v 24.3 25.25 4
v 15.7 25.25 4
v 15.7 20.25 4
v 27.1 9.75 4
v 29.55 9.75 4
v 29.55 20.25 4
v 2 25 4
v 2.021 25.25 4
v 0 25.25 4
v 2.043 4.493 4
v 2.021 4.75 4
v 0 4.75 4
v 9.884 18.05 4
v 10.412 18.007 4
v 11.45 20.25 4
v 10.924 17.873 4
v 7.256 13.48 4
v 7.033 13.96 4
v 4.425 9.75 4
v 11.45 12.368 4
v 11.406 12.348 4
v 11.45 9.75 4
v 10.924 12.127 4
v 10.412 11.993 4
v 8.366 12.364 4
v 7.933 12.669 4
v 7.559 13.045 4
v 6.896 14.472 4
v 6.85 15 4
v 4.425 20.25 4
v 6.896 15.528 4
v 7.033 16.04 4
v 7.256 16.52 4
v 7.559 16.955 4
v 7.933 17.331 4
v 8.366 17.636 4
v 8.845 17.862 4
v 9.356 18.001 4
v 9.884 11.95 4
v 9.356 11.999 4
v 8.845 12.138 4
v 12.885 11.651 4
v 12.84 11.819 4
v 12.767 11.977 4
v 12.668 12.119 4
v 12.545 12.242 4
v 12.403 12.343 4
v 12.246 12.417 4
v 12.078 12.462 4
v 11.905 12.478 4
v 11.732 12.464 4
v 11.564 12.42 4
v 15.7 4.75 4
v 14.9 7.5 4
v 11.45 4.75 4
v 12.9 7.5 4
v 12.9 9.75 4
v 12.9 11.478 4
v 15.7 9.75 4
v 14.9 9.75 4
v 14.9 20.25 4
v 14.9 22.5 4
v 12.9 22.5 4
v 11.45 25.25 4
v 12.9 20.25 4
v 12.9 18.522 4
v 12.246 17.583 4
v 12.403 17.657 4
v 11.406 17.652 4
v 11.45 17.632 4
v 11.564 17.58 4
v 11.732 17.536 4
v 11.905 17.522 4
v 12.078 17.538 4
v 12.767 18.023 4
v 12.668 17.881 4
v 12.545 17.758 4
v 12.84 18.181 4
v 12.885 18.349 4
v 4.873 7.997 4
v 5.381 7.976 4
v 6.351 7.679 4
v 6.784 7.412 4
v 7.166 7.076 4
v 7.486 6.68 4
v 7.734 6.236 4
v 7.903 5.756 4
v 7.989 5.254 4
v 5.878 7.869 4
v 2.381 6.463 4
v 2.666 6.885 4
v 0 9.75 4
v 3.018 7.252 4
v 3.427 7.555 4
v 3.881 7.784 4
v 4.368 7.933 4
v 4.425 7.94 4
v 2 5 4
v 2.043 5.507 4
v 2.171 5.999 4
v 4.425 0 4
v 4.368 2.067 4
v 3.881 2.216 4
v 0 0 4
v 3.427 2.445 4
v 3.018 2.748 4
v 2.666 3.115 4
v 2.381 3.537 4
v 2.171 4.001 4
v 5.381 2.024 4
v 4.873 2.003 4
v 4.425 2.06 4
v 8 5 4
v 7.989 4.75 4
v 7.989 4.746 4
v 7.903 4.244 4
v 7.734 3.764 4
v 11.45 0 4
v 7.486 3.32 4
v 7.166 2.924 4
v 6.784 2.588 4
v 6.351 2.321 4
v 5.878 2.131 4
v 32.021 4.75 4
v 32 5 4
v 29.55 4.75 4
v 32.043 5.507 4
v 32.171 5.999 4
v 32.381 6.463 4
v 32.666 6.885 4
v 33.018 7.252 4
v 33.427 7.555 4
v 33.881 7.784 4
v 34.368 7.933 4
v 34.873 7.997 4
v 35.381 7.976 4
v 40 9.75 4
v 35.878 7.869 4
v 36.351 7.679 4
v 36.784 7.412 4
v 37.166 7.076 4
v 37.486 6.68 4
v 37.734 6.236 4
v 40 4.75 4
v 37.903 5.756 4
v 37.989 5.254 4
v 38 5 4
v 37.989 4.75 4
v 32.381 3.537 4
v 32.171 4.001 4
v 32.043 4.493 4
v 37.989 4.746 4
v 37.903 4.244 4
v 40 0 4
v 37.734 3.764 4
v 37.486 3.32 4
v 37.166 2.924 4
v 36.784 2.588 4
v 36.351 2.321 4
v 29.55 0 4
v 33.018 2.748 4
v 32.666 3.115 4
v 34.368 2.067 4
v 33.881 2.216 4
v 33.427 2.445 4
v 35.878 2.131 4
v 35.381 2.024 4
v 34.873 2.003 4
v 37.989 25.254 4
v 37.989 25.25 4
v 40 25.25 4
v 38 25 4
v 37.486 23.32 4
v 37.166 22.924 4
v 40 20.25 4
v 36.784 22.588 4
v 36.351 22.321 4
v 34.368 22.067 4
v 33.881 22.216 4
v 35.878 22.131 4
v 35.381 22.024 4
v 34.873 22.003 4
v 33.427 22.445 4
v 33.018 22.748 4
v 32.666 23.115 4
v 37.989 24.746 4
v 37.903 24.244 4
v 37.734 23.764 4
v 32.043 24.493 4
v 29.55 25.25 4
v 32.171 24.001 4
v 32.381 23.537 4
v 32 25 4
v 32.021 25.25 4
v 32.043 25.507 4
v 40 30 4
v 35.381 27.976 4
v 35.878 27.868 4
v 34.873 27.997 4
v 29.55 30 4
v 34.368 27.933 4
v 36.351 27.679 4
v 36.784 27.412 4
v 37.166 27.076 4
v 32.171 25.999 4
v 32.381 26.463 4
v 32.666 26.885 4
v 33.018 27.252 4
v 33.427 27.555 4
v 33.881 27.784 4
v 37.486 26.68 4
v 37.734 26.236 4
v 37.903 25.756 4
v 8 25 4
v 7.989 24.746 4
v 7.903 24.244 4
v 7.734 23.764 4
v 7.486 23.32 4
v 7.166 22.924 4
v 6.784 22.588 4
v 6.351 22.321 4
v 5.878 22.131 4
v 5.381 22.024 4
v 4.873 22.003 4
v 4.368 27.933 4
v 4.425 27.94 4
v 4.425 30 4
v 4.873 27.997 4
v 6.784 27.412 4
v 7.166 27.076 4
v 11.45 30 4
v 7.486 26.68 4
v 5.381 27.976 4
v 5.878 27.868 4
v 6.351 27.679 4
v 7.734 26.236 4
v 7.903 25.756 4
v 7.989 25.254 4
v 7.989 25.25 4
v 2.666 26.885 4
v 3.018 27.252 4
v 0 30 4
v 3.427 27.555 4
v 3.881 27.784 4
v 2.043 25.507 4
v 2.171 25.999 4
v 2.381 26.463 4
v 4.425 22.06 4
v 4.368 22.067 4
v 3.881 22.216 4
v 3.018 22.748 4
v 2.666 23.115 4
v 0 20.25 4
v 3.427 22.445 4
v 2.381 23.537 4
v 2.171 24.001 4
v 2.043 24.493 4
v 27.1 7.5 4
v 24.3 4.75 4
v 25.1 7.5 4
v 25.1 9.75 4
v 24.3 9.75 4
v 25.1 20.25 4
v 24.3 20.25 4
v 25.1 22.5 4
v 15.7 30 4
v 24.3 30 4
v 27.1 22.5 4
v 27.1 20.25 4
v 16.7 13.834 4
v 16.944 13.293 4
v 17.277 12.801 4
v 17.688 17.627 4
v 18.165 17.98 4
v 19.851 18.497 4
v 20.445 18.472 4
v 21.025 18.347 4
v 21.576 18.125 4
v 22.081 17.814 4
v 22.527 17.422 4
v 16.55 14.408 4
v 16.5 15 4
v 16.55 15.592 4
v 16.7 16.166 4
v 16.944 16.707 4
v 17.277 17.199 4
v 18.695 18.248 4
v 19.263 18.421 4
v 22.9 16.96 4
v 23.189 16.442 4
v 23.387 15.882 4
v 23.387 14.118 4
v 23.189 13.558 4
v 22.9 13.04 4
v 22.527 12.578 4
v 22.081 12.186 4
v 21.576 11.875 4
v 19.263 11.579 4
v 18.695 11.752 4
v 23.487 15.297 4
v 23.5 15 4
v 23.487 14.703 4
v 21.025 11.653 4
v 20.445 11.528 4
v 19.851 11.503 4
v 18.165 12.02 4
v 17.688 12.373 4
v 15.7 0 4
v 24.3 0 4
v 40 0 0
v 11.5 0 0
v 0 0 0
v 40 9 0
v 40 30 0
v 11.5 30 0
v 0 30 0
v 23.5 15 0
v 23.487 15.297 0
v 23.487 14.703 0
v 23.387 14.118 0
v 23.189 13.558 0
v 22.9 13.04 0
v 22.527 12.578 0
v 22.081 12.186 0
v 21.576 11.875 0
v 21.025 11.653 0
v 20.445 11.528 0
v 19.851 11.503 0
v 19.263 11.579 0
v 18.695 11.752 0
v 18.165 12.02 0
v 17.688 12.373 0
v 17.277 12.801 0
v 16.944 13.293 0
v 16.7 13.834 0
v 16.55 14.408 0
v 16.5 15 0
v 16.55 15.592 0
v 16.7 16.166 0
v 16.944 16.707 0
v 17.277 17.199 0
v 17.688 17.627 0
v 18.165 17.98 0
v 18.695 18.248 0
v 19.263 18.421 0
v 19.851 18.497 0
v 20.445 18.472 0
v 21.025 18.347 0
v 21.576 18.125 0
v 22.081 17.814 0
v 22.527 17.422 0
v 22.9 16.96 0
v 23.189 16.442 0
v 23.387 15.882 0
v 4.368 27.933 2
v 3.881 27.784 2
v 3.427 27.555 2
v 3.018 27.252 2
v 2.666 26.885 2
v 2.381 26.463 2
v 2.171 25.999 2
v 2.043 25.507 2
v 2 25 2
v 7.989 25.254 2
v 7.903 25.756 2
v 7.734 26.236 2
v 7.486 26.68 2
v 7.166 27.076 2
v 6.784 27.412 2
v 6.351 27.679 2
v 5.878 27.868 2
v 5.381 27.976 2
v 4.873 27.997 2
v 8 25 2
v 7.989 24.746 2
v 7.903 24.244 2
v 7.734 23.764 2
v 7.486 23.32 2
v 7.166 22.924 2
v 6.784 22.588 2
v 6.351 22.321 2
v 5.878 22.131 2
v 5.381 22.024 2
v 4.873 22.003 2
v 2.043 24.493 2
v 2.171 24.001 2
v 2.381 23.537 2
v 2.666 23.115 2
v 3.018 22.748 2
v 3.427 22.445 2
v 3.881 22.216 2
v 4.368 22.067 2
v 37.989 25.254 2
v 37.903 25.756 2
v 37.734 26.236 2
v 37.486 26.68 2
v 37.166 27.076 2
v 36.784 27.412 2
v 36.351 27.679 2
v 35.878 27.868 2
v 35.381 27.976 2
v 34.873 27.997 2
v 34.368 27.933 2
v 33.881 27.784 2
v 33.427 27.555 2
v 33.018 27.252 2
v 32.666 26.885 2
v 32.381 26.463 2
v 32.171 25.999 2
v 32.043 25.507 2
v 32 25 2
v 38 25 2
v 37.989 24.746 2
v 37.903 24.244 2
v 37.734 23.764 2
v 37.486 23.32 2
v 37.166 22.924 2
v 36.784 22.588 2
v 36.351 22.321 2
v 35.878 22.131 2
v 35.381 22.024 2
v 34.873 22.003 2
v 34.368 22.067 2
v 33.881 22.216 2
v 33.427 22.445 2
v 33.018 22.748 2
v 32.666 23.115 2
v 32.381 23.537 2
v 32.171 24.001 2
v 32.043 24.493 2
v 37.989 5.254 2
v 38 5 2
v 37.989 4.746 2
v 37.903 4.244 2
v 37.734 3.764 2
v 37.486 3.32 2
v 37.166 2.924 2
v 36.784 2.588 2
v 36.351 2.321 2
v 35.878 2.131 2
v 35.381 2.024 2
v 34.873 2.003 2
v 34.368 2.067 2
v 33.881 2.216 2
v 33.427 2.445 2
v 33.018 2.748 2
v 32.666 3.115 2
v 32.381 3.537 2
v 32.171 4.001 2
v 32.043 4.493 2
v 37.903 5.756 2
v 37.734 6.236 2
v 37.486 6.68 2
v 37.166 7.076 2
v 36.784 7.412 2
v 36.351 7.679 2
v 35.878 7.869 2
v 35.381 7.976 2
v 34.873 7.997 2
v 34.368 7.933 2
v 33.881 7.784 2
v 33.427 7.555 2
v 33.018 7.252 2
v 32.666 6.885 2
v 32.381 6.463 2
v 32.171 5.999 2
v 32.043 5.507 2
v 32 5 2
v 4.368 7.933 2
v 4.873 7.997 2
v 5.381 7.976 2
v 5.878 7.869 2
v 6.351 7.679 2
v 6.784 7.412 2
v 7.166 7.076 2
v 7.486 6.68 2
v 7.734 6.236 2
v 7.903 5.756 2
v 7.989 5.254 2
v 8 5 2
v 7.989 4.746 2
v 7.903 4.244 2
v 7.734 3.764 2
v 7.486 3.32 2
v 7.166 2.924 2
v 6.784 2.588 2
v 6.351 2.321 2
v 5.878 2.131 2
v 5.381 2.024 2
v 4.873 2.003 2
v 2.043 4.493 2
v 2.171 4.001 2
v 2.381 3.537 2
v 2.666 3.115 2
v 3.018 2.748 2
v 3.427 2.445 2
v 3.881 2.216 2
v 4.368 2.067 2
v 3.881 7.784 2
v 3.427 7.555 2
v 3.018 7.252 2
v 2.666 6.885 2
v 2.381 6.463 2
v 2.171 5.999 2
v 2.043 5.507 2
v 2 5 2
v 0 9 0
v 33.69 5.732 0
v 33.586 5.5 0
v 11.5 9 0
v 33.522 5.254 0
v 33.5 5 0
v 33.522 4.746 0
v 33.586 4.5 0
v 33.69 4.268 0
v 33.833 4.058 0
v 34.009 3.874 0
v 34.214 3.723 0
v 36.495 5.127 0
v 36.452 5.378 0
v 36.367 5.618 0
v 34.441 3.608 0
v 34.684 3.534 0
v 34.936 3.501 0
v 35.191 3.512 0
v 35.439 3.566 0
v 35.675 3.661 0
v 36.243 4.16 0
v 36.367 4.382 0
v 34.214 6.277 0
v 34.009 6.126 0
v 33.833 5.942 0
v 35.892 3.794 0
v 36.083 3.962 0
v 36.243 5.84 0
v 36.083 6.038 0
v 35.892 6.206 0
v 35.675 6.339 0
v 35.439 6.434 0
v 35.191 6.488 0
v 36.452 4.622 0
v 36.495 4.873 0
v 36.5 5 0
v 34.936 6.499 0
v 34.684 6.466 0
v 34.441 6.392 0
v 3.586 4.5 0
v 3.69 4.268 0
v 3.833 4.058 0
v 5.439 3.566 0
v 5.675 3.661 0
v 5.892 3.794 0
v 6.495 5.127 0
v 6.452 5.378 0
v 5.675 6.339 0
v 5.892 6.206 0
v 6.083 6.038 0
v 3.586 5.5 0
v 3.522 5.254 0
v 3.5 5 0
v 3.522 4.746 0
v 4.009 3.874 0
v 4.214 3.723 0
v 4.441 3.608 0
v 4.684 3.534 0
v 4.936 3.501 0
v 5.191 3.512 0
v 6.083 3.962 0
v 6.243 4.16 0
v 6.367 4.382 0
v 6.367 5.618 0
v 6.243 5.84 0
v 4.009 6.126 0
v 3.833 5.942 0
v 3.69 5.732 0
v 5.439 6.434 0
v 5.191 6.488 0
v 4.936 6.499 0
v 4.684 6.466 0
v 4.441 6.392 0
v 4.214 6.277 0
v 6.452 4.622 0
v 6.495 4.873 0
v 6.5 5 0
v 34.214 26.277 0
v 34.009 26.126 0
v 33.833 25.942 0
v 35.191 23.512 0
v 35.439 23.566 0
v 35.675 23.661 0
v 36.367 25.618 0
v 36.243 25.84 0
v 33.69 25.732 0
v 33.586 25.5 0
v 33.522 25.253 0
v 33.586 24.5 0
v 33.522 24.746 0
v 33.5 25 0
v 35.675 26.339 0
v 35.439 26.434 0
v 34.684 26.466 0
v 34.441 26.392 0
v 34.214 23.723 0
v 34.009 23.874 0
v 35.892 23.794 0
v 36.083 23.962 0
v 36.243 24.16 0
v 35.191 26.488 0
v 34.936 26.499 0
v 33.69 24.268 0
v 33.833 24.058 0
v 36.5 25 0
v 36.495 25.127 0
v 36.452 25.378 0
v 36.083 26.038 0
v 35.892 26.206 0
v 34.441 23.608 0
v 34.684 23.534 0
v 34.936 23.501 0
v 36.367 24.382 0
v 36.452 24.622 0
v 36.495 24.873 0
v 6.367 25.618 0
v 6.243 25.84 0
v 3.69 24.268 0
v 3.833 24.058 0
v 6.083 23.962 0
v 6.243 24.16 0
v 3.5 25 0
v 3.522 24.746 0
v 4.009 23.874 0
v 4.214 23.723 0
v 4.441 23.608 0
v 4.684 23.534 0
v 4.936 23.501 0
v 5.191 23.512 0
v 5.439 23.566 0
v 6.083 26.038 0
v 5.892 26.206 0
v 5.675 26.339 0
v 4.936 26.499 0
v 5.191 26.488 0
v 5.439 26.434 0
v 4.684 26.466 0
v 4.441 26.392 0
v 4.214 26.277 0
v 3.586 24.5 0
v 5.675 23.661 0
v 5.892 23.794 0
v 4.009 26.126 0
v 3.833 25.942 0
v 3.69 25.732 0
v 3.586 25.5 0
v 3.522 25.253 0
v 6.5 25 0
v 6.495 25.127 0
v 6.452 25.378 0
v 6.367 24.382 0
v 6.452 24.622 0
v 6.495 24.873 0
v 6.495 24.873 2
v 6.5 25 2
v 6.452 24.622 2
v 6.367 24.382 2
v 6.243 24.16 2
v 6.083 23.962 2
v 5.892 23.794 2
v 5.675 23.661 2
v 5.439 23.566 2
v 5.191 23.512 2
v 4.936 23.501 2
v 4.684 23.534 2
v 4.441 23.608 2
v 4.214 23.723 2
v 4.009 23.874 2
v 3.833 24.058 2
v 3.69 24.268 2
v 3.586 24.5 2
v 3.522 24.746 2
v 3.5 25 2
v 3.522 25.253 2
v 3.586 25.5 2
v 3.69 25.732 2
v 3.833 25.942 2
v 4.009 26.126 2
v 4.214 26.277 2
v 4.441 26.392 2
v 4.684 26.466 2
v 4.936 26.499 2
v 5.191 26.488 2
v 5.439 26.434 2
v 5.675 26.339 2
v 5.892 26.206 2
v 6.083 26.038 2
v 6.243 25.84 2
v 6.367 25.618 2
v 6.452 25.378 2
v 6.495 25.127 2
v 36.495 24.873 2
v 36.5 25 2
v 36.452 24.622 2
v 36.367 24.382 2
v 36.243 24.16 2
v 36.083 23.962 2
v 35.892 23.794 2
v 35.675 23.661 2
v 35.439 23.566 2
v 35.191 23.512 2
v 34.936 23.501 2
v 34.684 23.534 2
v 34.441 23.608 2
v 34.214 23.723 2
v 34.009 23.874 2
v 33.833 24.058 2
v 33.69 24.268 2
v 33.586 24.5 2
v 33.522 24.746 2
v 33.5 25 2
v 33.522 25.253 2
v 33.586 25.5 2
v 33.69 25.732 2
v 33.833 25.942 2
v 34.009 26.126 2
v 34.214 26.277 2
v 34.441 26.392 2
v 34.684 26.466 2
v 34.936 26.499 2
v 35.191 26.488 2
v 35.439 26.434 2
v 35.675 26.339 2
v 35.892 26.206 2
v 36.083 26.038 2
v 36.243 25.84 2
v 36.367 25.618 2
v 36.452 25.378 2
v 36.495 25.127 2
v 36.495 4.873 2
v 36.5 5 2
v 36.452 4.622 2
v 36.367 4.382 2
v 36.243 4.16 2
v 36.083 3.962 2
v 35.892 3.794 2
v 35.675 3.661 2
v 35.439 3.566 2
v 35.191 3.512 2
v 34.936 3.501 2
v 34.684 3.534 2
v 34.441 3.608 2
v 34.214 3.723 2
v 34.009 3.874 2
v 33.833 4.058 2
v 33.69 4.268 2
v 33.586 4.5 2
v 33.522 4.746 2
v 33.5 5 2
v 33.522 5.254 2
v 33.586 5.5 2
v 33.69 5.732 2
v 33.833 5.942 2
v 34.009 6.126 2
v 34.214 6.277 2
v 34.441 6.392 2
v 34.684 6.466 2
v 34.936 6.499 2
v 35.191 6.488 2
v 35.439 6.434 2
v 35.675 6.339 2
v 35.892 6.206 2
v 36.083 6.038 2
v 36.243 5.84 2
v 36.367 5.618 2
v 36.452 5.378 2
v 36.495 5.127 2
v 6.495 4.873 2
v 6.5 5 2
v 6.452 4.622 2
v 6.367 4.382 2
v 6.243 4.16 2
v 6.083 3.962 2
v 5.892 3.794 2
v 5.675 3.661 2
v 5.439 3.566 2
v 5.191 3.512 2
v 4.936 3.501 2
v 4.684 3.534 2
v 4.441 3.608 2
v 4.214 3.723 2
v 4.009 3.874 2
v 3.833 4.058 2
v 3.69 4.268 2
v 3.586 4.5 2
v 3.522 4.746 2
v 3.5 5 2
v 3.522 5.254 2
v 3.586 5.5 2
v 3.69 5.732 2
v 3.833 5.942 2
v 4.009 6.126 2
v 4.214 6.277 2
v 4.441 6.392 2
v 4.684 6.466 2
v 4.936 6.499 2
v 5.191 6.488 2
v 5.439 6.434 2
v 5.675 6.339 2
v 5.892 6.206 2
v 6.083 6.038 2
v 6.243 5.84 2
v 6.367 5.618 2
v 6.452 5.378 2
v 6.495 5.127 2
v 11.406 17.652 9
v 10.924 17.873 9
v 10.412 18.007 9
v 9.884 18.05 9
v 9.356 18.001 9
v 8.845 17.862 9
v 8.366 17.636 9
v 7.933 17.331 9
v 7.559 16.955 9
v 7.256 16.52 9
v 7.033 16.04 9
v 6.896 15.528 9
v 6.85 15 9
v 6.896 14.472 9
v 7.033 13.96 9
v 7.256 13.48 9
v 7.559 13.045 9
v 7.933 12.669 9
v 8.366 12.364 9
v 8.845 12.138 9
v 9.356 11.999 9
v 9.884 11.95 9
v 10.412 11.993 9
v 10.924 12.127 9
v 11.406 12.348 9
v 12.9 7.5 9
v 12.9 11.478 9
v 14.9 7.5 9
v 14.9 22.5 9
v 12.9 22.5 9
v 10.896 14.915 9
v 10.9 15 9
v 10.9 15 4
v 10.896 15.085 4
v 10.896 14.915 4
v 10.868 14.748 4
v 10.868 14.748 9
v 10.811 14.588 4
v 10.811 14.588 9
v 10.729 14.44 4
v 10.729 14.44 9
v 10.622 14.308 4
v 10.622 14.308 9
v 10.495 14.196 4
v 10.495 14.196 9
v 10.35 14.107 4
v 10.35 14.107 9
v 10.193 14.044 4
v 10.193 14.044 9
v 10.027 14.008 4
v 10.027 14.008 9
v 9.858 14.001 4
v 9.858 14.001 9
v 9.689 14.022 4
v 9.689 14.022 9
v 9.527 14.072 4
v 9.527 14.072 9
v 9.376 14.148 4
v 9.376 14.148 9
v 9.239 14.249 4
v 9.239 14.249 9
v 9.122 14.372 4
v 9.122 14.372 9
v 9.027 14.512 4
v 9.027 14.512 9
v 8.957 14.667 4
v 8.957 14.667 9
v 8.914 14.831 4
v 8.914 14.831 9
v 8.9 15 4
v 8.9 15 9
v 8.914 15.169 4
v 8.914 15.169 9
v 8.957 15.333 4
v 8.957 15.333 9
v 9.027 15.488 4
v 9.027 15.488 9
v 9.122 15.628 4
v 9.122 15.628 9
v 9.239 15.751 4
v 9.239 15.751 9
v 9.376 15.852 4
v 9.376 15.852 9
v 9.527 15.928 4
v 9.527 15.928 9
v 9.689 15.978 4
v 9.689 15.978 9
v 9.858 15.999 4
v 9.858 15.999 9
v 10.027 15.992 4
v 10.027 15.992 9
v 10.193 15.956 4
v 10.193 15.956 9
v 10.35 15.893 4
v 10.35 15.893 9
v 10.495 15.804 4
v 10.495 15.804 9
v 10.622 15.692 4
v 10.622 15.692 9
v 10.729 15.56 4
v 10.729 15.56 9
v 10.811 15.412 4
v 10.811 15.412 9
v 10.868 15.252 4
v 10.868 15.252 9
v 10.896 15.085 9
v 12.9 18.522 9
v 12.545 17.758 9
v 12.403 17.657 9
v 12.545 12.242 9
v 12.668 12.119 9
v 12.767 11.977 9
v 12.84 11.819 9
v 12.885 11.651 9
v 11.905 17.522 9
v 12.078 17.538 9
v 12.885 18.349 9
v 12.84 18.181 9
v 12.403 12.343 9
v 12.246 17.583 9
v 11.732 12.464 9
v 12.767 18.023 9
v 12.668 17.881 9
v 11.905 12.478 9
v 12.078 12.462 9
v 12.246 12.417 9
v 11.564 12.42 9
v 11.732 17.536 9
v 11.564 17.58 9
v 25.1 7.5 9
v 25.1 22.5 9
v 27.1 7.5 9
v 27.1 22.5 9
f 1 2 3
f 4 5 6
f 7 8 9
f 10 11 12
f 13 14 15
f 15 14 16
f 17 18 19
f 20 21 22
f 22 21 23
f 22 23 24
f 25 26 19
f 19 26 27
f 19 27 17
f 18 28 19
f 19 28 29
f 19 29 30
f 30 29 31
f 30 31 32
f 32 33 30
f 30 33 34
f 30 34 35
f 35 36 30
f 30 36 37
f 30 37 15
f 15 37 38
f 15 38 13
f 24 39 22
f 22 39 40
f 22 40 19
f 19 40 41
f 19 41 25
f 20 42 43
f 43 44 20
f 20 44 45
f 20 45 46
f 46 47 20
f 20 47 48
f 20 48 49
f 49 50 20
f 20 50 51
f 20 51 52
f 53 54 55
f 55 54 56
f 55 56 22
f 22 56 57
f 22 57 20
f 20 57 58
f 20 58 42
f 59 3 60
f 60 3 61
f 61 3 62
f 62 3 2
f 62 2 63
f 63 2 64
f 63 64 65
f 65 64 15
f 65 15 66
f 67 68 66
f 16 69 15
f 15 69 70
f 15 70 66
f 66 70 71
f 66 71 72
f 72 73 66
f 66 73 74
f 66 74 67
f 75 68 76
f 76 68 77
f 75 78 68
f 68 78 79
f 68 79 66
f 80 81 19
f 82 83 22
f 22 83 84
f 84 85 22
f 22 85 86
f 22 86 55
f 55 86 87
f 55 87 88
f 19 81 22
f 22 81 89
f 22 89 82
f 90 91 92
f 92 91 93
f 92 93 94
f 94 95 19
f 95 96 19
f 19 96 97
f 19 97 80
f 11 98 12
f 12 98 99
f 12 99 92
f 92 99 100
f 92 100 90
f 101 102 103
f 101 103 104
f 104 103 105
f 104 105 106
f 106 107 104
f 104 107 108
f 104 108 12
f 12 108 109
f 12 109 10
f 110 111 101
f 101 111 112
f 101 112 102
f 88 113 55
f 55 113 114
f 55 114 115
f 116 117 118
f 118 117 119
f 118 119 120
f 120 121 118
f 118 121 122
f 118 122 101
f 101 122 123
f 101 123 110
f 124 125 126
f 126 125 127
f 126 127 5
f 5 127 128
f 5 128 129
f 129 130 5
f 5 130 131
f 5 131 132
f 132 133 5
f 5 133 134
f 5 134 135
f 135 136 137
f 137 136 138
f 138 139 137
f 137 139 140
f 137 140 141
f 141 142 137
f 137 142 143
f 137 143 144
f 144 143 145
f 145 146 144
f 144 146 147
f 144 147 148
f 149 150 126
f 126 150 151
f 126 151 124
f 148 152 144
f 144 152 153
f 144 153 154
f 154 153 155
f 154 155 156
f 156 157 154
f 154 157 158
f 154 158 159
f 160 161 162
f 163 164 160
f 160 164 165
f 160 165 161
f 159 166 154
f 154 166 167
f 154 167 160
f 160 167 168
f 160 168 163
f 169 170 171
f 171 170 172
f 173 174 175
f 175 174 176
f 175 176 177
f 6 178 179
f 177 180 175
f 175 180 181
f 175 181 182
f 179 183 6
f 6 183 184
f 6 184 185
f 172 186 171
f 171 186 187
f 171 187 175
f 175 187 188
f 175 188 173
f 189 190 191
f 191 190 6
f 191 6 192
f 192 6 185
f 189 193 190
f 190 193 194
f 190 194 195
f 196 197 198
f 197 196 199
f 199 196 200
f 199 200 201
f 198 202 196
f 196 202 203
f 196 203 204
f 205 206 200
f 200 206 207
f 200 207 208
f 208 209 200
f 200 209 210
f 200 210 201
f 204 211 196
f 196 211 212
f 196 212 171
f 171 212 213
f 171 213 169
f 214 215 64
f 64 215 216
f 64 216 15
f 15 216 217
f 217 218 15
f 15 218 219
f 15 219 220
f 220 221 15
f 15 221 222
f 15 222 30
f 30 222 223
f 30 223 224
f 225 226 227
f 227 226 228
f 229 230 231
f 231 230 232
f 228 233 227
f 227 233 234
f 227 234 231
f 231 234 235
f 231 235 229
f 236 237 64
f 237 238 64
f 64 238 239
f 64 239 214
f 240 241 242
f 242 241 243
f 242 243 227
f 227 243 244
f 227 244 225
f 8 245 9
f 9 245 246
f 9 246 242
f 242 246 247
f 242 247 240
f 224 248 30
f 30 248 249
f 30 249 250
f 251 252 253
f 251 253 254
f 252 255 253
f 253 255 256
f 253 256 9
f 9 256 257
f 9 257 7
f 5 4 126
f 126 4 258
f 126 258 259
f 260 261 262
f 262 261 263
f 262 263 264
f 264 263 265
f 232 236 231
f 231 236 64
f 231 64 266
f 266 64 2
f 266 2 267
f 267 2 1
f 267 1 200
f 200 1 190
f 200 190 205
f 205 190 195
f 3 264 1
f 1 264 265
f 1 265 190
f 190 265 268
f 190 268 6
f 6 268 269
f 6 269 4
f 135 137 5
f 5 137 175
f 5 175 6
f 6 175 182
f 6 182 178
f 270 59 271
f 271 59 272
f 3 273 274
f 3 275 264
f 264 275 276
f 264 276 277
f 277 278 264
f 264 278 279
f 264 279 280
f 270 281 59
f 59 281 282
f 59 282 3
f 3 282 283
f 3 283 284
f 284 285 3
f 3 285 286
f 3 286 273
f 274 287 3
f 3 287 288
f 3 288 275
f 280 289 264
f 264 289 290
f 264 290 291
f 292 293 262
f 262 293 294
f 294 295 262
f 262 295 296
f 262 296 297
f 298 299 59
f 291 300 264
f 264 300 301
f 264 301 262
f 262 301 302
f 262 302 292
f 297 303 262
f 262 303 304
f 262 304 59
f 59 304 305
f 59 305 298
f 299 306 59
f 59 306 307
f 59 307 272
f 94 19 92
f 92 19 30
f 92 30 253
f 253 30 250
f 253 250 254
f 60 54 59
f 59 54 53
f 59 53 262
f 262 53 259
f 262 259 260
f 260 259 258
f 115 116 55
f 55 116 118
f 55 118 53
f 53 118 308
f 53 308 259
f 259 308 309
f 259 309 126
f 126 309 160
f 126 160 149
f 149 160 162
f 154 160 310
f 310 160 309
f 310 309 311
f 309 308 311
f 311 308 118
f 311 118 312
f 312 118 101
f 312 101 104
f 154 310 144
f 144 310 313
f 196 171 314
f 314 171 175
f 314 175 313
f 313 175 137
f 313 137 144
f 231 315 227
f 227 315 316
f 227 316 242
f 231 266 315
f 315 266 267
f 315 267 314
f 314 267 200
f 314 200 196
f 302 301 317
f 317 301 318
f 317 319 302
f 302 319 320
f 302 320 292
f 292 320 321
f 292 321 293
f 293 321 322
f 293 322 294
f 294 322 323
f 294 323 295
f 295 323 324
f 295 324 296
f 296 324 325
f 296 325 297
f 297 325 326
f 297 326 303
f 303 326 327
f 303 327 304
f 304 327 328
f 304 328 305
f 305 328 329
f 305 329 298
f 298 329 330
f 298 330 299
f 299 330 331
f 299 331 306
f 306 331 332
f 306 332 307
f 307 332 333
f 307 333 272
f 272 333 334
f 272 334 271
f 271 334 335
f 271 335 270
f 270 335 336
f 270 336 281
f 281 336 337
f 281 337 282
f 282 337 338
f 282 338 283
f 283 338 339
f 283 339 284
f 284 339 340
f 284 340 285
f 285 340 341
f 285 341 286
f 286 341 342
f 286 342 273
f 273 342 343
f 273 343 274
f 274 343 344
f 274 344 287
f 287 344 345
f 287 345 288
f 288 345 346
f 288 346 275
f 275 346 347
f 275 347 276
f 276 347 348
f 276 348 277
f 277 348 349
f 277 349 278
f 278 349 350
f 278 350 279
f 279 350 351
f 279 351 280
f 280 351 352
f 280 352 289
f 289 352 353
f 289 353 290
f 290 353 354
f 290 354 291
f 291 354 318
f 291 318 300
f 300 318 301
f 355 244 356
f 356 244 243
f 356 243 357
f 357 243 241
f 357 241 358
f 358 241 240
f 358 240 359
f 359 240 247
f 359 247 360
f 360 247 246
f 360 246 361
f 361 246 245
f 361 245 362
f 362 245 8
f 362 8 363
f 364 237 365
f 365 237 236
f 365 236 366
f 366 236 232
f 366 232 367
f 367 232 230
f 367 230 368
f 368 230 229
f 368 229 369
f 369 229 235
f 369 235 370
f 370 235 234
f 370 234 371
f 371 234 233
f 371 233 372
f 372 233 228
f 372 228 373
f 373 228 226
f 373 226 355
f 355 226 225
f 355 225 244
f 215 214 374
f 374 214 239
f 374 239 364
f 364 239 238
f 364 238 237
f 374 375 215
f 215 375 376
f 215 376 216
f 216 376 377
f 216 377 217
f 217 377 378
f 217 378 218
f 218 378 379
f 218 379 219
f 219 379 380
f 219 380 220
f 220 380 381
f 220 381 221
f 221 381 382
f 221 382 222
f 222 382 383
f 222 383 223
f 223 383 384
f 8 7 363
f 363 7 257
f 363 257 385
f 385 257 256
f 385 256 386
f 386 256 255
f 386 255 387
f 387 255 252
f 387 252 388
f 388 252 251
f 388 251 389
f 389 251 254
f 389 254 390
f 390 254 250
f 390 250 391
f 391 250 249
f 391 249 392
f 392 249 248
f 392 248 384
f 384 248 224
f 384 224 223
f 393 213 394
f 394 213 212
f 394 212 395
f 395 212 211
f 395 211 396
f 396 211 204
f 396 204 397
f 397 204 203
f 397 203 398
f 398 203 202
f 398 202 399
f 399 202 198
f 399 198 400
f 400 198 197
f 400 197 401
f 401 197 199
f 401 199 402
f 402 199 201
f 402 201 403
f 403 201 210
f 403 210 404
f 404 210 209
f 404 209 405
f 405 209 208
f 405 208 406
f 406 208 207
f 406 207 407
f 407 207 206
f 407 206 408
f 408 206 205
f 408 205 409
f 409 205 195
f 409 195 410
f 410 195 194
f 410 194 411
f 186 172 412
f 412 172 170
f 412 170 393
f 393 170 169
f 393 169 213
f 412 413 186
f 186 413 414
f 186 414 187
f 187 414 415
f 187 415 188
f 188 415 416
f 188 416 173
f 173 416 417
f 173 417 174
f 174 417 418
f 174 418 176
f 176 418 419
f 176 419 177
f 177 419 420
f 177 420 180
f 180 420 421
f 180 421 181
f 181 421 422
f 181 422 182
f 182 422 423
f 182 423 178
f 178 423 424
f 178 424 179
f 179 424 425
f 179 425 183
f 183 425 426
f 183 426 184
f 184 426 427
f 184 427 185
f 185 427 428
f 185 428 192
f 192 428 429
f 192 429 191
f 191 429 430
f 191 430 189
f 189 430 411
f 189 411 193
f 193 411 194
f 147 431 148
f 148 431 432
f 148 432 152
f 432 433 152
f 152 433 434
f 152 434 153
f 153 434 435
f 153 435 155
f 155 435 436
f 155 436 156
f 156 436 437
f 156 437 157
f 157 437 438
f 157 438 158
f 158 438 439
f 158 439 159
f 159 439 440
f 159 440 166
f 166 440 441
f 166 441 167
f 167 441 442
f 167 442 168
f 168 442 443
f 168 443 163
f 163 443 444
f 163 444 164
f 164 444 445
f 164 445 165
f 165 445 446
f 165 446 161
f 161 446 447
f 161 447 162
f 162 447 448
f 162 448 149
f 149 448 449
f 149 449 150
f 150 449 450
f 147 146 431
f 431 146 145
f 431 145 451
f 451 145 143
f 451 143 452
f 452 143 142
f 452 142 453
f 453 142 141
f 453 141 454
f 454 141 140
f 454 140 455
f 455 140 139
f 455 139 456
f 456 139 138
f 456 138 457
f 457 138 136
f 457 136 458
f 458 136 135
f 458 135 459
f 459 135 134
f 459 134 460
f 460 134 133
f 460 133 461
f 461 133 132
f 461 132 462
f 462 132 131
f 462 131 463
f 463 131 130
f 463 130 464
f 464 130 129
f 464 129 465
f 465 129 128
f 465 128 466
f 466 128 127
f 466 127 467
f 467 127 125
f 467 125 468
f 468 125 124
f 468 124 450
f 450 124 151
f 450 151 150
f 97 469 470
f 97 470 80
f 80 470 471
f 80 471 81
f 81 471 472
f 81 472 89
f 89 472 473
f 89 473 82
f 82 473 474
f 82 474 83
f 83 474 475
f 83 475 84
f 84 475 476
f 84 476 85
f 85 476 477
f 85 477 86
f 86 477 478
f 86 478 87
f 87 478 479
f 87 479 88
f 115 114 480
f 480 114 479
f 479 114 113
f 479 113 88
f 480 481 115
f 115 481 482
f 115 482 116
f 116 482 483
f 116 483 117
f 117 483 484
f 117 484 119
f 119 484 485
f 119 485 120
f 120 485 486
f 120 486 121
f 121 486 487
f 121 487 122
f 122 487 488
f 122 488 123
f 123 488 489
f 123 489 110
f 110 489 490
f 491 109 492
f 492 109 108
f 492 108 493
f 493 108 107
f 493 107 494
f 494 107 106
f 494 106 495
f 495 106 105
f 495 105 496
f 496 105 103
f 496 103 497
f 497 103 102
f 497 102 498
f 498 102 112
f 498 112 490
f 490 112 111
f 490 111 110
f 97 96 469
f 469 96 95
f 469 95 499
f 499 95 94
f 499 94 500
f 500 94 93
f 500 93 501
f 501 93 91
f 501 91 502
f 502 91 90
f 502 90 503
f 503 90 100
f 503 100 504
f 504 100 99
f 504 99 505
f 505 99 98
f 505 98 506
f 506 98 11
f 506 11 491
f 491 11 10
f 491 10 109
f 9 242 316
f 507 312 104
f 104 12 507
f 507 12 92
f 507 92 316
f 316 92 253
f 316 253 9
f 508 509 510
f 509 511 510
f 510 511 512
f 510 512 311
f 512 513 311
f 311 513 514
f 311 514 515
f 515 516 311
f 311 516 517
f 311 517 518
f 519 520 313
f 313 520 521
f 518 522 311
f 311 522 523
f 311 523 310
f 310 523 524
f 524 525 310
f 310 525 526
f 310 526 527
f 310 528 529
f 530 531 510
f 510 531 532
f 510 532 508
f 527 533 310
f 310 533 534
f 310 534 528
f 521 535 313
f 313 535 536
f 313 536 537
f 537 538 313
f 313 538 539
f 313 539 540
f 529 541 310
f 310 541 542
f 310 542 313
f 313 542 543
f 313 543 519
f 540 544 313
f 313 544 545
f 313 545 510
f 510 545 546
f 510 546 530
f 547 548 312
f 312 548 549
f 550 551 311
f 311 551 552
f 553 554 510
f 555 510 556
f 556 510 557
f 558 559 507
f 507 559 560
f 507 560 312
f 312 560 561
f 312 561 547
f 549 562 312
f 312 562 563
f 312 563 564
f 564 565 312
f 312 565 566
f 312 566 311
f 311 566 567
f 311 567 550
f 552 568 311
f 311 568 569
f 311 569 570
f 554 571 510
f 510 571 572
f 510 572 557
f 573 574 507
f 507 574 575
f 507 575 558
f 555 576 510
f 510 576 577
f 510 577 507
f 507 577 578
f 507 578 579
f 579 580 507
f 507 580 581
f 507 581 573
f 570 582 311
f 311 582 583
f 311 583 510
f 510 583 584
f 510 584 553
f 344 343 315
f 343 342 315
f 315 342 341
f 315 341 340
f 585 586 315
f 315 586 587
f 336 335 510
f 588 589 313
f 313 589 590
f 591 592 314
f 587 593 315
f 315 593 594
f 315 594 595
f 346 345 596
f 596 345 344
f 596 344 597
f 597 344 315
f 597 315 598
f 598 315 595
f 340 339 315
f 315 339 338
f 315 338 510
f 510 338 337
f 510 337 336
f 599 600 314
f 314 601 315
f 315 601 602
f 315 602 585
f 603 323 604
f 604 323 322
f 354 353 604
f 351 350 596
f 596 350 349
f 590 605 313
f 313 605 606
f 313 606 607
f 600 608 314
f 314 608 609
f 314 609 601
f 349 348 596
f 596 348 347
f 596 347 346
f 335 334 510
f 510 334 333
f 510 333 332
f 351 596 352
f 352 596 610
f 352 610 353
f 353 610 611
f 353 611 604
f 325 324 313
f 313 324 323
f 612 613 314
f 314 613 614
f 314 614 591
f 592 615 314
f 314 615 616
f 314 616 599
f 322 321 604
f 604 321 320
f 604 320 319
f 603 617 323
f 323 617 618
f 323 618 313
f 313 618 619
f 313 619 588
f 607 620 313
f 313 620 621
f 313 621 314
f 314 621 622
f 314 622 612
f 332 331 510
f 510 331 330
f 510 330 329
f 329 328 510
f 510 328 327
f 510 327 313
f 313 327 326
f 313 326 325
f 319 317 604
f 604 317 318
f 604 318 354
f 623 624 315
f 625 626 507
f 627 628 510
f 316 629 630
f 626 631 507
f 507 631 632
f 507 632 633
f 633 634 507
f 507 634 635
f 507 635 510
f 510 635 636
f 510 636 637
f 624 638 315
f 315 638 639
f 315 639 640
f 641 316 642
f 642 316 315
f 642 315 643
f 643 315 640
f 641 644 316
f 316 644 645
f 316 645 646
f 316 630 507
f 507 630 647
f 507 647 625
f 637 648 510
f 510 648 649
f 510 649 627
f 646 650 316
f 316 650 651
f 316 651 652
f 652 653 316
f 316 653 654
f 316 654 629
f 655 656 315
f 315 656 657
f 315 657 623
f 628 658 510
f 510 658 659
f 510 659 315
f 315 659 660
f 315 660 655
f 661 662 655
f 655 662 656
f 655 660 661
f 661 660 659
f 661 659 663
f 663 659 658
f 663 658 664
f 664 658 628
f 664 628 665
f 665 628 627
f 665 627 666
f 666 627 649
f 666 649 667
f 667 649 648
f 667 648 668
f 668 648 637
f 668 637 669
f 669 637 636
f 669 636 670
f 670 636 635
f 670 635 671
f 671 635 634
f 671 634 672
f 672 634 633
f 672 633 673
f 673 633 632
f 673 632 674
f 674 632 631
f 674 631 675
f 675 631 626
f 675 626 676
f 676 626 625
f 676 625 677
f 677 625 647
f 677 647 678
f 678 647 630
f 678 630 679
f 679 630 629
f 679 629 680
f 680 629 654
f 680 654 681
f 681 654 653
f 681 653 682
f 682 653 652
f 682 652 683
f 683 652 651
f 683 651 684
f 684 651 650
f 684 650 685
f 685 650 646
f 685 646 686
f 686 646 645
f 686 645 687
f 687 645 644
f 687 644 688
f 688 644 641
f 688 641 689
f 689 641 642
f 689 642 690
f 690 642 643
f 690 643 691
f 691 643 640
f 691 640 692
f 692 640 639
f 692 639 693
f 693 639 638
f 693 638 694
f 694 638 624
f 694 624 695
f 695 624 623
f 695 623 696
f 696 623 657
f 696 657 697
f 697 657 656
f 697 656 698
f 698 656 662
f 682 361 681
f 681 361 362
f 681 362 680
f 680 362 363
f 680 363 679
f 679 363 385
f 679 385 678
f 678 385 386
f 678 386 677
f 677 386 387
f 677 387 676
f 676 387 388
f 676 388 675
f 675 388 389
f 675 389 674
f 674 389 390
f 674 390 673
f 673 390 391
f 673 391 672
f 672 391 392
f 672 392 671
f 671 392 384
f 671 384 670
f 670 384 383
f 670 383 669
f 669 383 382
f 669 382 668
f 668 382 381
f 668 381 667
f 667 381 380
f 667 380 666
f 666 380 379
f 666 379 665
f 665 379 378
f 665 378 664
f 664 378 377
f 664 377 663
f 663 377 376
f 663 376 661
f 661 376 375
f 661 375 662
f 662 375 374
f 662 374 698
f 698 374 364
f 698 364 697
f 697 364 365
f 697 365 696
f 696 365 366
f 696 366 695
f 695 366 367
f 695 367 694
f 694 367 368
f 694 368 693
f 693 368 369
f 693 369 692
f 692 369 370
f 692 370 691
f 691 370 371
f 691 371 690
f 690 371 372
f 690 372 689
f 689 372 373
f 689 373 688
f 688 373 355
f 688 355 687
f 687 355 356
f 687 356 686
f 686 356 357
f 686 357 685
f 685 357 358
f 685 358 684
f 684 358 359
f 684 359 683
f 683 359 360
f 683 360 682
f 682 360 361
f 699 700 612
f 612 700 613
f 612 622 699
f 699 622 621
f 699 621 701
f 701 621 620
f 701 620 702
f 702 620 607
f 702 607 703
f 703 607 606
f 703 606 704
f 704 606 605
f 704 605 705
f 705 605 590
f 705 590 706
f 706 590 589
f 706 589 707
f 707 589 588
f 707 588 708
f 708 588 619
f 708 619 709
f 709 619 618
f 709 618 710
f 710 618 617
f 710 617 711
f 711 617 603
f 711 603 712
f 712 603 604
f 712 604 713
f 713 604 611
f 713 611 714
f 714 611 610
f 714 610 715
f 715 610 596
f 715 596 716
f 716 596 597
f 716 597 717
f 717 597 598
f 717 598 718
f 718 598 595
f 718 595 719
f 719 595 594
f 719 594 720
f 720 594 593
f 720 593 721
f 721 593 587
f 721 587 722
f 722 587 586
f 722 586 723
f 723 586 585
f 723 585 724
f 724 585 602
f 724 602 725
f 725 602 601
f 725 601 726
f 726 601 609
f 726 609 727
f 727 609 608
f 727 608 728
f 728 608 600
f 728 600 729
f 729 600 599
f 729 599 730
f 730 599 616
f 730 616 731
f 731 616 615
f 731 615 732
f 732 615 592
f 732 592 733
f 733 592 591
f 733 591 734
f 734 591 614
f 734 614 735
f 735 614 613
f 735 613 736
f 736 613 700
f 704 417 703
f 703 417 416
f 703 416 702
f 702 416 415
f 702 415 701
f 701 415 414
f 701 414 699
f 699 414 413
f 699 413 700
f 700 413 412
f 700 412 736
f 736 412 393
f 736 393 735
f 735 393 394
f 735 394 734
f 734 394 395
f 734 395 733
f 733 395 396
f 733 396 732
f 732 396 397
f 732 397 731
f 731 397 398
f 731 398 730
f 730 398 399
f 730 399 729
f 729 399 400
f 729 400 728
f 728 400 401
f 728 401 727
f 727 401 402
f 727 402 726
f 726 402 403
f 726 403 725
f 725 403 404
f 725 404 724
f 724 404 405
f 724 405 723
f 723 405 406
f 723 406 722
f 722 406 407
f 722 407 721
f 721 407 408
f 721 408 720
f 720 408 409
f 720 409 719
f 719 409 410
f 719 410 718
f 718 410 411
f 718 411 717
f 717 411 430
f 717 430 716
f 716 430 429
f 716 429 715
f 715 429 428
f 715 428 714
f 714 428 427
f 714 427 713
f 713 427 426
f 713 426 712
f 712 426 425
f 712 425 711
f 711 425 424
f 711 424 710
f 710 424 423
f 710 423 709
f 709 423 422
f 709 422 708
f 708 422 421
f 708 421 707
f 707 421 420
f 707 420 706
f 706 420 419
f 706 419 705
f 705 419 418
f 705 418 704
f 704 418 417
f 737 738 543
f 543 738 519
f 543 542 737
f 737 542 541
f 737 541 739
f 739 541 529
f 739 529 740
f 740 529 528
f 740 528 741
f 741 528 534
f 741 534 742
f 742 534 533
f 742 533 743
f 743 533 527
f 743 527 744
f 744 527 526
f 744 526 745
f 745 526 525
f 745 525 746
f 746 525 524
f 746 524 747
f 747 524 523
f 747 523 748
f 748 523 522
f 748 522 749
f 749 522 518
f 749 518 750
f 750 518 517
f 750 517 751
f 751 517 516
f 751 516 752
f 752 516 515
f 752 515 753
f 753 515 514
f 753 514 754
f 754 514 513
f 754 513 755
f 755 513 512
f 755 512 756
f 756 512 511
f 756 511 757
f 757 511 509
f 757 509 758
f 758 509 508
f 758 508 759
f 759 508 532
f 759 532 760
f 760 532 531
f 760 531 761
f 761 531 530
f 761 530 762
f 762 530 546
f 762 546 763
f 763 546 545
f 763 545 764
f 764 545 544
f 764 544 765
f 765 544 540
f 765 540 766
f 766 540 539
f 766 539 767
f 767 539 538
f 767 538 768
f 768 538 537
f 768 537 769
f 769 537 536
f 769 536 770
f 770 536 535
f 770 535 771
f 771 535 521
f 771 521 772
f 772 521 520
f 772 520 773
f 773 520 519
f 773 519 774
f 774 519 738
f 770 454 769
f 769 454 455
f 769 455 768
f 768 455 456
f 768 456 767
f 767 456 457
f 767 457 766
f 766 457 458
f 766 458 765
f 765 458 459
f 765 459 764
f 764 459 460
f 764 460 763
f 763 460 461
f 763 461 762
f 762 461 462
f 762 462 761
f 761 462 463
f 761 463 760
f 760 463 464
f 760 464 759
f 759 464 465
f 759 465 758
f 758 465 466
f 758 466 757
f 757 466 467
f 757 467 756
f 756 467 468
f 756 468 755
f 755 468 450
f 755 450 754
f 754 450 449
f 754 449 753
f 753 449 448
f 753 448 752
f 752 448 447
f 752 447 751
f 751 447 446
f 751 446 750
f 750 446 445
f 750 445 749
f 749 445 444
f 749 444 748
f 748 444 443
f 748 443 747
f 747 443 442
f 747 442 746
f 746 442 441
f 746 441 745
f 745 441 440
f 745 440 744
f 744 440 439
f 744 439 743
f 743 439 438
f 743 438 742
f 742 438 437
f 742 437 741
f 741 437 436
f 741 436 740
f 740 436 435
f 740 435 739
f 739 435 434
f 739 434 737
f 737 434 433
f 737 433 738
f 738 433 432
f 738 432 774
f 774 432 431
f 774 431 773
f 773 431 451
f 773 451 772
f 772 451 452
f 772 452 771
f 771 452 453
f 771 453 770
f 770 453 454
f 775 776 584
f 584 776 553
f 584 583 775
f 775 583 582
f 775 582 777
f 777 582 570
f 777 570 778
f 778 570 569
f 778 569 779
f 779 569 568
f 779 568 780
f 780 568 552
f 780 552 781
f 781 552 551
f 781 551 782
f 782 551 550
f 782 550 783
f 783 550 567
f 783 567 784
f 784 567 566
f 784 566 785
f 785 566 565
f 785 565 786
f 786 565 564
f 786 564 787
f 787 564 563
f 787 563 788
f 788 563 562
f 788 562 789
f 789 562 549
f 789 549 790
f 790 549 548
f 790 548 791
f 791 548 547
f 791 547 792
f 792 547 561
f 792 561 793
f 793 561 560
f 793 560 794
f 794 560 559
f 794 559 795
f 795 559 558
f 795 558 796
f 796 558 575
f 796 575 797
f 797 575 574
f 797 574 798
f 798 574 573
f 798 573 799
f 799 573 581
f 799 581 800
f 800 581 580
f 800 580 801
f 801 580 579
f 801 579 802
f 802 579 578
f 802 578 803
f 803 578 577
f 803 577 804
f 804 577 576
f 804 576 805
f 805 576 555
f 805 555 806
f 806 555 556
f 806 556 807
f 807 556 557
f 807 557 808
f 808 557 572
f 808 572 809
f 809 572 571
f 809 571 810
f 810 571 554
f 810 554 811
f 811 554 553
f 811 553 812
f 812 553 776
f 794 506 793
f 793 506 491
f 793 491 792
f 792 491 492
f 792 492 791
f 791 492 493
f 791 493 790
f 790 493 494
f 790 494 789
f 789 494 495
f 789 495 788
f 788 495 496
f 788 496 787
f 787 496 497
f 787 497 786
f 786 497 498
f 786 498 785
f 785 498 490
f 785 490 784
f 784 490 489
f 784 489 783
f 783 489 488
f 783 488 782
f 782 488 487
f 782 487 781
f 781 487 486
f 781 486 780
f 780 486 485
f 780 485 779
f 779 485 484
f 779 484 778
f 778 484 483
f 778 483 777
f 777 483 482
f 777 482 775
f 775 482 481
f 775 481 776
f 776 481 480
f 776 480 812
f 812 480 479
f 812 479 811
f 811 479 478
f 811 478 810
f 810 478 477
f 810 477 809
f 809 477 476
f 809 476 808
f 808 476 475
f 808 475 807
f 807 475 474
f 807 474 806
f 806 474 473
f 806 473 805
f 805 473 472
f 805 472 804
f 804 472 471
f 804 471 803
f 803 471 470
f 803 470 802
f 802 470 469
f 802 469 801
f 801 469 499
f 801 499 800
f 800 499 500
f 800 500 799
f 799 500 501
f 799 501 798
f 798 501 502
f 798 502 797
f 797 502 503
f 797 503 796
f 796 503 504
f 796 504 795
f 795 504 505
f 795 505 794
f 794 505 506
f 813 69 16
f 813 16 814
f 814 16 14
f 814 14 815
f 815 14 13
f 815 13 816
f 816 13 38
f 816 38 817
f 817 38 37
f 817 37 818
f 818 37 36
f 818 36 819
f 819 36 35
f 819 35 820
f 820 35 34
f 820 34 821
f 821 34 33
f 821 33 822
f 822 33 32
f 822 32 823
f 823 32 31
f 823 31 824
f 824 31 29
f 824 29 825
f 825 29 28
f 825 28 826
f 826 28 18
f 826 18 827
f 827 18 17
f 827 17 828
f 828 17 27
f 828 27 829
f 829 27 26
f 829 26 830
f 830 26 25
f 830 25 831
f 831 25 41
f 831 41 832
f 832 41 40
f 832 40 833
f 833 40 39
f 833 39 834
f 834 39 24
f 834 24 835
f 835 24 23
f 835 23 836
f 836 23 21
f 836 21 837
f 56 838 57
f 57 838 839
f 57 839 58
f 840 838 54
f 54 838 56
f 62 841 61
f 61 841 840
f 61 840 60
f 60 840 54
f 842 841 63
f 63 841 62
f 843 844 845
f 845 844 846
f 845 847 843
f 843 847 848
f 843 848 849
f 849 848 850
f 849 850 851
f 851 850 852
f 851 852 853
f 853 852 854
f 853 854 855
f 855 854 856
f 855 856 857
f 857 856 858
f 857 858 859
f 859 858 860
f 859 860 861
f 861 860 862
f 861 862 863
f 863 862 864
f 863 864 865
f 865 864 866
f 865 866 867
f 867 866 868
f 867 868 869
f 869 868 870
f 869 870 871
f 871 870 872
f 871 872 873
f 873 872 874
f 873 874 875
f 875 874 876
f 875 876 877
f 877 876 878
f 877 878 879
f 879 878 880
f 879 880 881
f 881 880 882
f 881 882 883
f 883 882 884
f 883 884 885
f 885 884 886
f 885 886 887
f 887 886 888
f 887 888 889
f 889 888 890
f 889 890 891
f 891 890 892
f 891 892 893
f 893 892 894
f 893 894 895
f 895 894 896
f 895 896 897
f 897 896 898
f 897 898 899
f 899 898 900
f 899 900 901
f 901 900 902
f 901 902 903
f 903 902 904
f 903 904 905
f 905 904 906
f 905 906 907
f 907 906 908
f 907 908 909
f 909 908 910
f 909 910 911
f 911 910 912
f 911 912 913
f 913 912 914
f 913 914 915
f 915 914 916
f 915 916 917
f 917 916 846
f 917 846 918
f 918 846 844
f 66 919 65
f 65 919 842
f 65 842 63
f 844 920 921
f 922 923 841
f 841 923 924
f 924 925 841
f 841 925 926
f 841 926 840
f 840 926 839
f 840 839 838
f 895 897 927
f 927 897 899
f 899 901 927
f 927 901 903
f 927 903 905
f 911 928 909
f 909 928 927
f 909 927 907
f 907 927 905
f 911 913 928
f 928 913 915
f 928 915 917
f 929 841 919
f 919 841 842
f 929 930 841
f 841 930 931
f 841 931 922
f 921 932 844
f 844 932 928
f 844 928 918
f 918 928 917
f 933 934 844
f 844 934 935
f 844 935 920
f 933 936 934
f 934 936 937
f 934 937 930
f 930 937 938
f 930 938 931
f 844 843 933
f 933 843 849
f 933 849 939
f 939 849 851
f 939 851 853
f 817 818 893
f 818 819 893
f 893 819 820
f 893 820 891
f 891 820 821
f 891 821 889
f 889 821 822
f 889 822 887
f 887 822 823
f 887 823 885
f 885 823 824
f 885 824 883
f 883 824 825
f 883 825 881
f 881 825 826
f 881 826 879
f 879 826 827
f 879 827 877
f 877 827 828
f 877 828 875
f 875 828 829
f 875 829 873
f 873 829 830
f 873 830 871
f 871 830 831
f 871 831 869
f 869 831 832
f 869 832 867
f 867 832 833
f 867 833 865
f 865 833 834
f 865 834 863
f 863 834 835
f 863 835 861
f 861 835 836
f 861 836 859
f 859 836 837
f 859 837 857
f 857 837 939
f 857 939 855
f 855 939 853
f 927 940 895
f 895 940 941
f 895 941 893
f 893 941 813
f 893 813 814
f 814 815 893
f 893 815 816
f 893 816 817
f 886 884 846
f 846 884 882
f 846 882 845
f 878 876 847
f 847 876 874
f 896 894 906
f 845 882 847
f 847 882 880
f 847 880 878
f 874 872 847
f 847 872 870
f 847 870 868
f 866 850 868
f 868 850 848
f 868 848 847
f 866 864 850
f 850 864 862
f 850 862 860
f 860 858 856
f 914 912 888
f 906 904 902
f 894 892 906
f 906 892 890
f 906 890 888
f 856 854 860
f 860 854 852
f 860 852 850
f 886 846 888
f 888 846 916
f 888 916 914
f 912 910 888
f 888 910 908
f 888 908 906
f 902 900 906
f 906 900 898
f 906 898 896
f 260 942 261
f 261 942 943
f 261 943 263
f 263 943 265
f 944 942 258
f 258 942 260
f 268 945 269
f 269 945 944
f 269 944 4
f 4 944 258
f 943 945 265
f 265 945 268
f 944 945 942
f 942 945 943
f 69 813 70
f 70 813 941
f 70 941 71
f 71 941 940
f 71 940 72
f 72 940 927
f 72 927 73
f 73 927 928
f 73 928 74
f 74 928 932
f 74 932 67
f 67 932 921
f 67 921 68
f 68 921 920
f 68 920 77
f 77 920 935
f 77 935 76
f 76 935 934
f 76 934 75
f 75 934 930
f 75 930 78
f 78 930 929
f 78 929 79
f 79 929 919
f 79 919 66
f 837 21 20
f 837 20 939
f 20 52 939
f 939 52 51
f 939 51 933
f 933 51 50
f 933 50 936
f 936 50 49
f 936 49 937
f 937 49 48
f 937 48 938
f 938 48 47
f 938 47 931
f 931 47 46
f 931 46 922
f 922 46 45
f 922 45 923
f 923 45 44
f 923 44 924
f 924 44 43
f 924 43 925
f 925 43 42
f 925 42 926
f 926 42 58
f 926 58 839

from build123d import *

# Parameters (mm, degrees)
SKIZZE1_W                       = 40
SKIZZE1_H                       = 30
SKIZZE1_R                       = 3
SKIZZE1_R_2                     = 3.5
AUFSATZ_LINEAR_AUSTRAGEN1_DEPTH = 4
SKIZZE1_3_R                     = 3
SKIZZE1_3_R_2                   = 1.5
AUFSATZ_LINEAR_AUSTRAGEN2_DEPTH = 2
SKIZZE2_R                       = 1
SKIZZE2_W                       = 2
SKIZZE2_H                       = 15
AUFSATZ_LINEAR_AUSTRAGEN5_DEPTH = 5
VERRUNDUNG1_R                   = 1


with BuildPart() as part:
    # Skizze1 → Aufsatz-Linear austragen1 (new body)
    with BuildSketch(Plane.XY):
        with Locations((20, 15)):
            Rectangle(SKIZZE1_W, SKIZZE1_H)
        with Locations((5, 5)):
            Circle(SKIZZE1_R, mode=Mode.SUBTRACT)
        with Locations((35, 5)):
            Circle(SKIZZE1_R, mode=Mode.SUBTRACT)
        with Locations((5, 25)):
            Circle(SKIZZE1_R, mode=Mode.SUBTRACT)
        with Locations((20, 15)):
            Circle(SKIZZE1_R_2, mode=Mode.SUBTRACT)
        with Locations((35, 25)):
            Circle(SKIZZE1_R, mode=Mode.SUBTRACT)
    extrude(amount=AUFSATZ_LINEAR_AUSTRAGEN1_DEPTH)

    # Skizze1_3 → Aufsatz-Linear austragen2 (add)
    # profile 1 of 4: a face of its own
    with BuildSketch(Plane.XY):
        with Locations((5, 25)):
            Circle(SKIZZE1_3_R)
        with Locations((5, 25)):
            Circle(SKIZZE1_3_R_2, mode=Mode.SUBTRACT)
    # profile 2 of 4: a face of its own
    with BuildSketch(Plane.XY):
        with Locations((35, 25)):
            Circle(SKIZZE1_3_R)
        with Locations((35, 25)):
            Circle(SKIZZE1_3_R_2, mode=Mode.SUBTRACT)
    # profile 3 of 4: a face of its own
    with BuildSketch(Plane.XY):
        with Locations((35, 5)):
            Circle(SKIZZE1_3_R)
        with Locations((35, 5)):
            Circle(SKIZZE1_3_R_2, mode=Mode.SUBTRACT)
    # profile 4 of 4: a face of its own
    with BuildSketch(Plane.XY):
        with Locations((5, 5)):
            Circle(SKIZZE1_3_R)
        with Locations((5, 5)):
            Circle(SKIZZE1_3_R_2, mode=Mode.SUBTRACT)
    extrude(amount=AUFSATZ_LINEAR_AUSTRAGEN2_DEPTH)

    # Skizze2 → Aufsatz-Linear austragen5 (add)
    # profile 1 of 2: a face of its own
    with BuildSketch(Plane.XY.offset(4)):
        with BuildLine():
            Line((14.9, 7.5), (14.9, 22.5))
            Line((14.9, 22.5), (12.9, 22.5))
            Line((12.9, 22.5), (12.9, 15.55))
            ThreePointArc((12.9, 15.55), (6.85, 15), (12.9, 14.45))
            Line((12.9, 14.45), (12.9, 7.5))
            Line((12.9, 7.5), (14.9, 7.5))
        make_face()
        with Locations((9.9, 15)):
            Circle(SKIZZE2_R, mode=Mode.SUBTRACT)
    # profile 2 of 2: a face of its own
    with BuildSketch(Plane.XY.offset(4)):
        with Locations((26.1, 15)):
            Rectangle(SKIZZE2_W, SKIZZE2_H)
    extrude(amount=AUFSATZ_LINEAR_AUSTRAGEN5_DEPTH)

    # Verrundung1
    verrundung1_edges = [part.edges().sort_by_distance(p)[0] for p in [
        (12.9, 15.55, 6.5),
        (12.9, 14.45, 6.5),
    ]]
    fillet(verrundung1_edges, radius=VERRUNDUNG1_R)


solid = part.part
